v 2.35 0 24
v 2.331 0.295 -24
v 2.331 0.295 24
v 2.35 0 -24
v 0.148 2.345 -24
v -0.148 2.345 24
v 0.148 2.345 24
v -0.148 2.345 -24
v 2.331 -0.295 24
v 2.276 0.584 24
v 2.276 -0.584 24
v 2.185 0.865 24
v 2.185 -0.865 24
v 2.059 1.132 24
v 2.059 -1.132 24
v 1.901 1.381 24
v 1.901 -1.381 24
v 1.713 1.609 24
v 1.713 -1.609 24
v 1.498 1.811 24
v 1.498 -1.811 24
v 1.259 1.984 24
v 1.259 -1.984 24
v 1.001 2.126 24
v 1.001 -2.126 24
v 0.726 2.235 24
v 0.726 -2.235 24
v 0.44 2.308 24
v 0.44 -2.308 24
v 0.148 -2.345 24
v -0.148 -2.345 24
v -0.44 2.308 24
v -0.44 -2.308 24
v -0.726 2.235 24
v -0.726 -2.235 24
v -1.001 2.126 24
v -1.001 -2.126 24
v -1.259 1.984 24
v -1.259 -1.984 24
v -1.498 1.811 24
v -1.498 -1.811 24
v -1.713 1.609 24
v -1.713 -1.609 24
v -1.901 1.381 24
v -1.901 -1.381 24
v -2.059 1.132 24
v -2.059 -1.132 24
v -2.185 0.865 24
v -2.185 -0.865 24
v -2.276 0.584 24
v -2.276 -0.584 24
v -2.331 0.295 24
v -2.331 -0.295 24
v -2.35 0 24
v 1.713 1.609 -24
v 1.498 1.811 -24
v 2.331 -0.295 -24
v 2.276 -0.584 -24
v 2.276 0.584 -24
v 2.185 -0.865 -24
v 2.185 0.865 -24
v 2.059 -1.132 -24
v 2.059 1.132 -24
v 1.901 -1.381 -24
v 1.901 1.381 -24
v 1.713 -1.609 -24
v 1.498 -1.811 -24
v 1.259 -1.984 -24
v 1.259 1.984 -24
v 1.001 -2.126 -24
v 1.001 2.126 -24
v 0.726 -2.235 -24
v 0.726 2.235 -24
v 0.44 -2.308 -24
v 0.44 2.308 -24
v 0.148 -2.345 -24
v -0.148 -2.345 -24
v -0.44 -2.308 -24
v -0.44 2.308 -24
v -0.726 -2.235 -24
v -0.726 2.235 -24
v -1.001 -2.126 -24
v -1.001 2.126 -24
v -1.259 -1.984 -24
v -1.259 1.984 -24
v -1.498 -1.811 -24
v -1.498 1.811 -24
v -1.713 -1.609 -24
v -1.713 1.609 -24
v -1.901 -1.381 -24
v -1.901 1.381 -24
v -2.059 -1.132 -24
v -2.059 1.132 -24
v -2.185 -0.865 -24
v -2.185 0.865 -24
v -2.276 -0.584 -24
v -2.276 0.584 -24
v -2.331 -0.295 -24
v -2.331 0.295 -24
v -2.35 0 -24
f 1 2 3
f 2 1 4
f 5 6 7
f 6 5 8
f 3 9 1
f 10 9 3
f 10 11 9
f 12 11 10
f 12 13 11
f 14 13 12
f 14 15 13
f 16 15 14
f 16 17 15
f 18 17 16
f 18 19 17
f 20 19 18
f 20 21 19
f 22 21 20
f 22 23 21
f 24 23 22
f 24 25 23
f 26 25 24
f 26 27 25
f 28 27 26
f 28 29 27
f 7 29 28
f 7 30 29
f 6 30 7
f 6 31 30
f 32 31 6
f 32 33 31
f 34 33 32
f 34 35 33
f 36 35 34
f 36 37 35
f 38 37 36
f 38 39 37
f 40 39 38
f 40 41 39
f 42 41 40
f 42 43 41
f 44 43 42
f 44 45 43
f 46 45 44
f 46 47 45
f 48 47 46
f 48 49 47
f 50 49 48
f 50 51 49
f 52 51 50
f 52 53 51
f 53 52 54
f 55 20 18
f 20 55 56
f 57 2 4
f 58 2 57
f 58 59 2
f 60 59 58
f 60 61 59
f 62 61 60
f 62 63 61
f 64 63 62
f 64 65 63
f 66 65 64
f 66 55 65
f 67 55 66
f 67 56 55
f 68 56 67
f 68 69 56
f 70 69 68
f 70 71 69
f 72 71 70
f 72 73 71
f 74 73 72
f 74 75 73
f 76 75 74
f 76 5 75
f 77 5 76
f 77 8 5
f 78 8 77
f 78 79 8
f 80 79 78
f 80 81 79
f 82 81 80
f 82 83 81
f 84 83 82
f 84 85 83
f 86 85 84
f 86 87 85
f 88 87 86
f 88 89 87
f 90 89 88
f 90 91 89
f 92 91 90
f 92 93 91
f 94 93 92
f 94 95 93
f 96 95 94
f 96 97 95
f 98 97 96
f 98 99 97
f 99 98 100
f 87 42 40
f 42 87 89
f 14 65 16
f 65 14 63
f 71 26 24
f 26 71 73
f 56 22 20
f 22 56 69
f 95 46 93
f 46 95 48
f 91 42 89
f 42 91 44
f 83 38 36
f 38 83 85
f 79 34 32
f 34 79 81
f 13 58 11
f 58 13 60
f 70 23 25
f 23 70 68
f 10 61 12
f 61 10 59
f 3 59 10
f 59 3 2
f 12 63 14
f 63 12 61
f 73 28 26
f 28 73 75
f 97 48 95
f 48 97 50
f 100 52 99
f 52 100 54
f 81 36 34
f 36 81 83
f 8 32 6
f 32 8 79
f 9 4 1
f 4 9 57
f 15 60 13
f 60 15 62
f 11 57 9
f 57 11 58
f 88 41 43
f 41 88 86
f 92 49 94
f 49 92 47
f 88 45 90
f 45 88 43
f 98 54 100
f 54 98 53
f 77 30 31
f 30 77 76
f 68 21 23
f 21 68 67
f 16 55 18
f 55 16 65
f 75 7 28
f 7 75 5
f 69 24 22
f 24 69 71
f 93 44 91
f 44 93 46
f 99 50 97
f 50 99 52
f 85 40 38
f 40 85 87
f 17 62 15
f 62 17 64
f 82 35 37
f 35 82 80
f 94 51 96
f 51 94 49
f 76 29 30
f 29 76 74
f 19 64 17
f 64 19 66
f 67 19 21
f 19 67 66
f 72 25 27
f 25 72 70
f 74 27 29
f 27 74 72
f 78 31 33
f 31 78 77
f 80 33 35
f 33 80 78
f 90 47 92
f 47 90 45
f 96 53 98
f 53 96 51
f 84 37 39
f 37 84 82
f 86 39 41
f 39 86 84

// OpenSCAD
$fn = 50;


difference() {
	union() {
		translate(v = [0, 0, -24.0000000000]) {
			cylinder(h = 48, r = 2.3500000000);
		}
	}
	union() {
		translate(v = [0, 0, -100.0000000000]) {
			cylinder(h = 200, r = 0);
		}
	}
}
